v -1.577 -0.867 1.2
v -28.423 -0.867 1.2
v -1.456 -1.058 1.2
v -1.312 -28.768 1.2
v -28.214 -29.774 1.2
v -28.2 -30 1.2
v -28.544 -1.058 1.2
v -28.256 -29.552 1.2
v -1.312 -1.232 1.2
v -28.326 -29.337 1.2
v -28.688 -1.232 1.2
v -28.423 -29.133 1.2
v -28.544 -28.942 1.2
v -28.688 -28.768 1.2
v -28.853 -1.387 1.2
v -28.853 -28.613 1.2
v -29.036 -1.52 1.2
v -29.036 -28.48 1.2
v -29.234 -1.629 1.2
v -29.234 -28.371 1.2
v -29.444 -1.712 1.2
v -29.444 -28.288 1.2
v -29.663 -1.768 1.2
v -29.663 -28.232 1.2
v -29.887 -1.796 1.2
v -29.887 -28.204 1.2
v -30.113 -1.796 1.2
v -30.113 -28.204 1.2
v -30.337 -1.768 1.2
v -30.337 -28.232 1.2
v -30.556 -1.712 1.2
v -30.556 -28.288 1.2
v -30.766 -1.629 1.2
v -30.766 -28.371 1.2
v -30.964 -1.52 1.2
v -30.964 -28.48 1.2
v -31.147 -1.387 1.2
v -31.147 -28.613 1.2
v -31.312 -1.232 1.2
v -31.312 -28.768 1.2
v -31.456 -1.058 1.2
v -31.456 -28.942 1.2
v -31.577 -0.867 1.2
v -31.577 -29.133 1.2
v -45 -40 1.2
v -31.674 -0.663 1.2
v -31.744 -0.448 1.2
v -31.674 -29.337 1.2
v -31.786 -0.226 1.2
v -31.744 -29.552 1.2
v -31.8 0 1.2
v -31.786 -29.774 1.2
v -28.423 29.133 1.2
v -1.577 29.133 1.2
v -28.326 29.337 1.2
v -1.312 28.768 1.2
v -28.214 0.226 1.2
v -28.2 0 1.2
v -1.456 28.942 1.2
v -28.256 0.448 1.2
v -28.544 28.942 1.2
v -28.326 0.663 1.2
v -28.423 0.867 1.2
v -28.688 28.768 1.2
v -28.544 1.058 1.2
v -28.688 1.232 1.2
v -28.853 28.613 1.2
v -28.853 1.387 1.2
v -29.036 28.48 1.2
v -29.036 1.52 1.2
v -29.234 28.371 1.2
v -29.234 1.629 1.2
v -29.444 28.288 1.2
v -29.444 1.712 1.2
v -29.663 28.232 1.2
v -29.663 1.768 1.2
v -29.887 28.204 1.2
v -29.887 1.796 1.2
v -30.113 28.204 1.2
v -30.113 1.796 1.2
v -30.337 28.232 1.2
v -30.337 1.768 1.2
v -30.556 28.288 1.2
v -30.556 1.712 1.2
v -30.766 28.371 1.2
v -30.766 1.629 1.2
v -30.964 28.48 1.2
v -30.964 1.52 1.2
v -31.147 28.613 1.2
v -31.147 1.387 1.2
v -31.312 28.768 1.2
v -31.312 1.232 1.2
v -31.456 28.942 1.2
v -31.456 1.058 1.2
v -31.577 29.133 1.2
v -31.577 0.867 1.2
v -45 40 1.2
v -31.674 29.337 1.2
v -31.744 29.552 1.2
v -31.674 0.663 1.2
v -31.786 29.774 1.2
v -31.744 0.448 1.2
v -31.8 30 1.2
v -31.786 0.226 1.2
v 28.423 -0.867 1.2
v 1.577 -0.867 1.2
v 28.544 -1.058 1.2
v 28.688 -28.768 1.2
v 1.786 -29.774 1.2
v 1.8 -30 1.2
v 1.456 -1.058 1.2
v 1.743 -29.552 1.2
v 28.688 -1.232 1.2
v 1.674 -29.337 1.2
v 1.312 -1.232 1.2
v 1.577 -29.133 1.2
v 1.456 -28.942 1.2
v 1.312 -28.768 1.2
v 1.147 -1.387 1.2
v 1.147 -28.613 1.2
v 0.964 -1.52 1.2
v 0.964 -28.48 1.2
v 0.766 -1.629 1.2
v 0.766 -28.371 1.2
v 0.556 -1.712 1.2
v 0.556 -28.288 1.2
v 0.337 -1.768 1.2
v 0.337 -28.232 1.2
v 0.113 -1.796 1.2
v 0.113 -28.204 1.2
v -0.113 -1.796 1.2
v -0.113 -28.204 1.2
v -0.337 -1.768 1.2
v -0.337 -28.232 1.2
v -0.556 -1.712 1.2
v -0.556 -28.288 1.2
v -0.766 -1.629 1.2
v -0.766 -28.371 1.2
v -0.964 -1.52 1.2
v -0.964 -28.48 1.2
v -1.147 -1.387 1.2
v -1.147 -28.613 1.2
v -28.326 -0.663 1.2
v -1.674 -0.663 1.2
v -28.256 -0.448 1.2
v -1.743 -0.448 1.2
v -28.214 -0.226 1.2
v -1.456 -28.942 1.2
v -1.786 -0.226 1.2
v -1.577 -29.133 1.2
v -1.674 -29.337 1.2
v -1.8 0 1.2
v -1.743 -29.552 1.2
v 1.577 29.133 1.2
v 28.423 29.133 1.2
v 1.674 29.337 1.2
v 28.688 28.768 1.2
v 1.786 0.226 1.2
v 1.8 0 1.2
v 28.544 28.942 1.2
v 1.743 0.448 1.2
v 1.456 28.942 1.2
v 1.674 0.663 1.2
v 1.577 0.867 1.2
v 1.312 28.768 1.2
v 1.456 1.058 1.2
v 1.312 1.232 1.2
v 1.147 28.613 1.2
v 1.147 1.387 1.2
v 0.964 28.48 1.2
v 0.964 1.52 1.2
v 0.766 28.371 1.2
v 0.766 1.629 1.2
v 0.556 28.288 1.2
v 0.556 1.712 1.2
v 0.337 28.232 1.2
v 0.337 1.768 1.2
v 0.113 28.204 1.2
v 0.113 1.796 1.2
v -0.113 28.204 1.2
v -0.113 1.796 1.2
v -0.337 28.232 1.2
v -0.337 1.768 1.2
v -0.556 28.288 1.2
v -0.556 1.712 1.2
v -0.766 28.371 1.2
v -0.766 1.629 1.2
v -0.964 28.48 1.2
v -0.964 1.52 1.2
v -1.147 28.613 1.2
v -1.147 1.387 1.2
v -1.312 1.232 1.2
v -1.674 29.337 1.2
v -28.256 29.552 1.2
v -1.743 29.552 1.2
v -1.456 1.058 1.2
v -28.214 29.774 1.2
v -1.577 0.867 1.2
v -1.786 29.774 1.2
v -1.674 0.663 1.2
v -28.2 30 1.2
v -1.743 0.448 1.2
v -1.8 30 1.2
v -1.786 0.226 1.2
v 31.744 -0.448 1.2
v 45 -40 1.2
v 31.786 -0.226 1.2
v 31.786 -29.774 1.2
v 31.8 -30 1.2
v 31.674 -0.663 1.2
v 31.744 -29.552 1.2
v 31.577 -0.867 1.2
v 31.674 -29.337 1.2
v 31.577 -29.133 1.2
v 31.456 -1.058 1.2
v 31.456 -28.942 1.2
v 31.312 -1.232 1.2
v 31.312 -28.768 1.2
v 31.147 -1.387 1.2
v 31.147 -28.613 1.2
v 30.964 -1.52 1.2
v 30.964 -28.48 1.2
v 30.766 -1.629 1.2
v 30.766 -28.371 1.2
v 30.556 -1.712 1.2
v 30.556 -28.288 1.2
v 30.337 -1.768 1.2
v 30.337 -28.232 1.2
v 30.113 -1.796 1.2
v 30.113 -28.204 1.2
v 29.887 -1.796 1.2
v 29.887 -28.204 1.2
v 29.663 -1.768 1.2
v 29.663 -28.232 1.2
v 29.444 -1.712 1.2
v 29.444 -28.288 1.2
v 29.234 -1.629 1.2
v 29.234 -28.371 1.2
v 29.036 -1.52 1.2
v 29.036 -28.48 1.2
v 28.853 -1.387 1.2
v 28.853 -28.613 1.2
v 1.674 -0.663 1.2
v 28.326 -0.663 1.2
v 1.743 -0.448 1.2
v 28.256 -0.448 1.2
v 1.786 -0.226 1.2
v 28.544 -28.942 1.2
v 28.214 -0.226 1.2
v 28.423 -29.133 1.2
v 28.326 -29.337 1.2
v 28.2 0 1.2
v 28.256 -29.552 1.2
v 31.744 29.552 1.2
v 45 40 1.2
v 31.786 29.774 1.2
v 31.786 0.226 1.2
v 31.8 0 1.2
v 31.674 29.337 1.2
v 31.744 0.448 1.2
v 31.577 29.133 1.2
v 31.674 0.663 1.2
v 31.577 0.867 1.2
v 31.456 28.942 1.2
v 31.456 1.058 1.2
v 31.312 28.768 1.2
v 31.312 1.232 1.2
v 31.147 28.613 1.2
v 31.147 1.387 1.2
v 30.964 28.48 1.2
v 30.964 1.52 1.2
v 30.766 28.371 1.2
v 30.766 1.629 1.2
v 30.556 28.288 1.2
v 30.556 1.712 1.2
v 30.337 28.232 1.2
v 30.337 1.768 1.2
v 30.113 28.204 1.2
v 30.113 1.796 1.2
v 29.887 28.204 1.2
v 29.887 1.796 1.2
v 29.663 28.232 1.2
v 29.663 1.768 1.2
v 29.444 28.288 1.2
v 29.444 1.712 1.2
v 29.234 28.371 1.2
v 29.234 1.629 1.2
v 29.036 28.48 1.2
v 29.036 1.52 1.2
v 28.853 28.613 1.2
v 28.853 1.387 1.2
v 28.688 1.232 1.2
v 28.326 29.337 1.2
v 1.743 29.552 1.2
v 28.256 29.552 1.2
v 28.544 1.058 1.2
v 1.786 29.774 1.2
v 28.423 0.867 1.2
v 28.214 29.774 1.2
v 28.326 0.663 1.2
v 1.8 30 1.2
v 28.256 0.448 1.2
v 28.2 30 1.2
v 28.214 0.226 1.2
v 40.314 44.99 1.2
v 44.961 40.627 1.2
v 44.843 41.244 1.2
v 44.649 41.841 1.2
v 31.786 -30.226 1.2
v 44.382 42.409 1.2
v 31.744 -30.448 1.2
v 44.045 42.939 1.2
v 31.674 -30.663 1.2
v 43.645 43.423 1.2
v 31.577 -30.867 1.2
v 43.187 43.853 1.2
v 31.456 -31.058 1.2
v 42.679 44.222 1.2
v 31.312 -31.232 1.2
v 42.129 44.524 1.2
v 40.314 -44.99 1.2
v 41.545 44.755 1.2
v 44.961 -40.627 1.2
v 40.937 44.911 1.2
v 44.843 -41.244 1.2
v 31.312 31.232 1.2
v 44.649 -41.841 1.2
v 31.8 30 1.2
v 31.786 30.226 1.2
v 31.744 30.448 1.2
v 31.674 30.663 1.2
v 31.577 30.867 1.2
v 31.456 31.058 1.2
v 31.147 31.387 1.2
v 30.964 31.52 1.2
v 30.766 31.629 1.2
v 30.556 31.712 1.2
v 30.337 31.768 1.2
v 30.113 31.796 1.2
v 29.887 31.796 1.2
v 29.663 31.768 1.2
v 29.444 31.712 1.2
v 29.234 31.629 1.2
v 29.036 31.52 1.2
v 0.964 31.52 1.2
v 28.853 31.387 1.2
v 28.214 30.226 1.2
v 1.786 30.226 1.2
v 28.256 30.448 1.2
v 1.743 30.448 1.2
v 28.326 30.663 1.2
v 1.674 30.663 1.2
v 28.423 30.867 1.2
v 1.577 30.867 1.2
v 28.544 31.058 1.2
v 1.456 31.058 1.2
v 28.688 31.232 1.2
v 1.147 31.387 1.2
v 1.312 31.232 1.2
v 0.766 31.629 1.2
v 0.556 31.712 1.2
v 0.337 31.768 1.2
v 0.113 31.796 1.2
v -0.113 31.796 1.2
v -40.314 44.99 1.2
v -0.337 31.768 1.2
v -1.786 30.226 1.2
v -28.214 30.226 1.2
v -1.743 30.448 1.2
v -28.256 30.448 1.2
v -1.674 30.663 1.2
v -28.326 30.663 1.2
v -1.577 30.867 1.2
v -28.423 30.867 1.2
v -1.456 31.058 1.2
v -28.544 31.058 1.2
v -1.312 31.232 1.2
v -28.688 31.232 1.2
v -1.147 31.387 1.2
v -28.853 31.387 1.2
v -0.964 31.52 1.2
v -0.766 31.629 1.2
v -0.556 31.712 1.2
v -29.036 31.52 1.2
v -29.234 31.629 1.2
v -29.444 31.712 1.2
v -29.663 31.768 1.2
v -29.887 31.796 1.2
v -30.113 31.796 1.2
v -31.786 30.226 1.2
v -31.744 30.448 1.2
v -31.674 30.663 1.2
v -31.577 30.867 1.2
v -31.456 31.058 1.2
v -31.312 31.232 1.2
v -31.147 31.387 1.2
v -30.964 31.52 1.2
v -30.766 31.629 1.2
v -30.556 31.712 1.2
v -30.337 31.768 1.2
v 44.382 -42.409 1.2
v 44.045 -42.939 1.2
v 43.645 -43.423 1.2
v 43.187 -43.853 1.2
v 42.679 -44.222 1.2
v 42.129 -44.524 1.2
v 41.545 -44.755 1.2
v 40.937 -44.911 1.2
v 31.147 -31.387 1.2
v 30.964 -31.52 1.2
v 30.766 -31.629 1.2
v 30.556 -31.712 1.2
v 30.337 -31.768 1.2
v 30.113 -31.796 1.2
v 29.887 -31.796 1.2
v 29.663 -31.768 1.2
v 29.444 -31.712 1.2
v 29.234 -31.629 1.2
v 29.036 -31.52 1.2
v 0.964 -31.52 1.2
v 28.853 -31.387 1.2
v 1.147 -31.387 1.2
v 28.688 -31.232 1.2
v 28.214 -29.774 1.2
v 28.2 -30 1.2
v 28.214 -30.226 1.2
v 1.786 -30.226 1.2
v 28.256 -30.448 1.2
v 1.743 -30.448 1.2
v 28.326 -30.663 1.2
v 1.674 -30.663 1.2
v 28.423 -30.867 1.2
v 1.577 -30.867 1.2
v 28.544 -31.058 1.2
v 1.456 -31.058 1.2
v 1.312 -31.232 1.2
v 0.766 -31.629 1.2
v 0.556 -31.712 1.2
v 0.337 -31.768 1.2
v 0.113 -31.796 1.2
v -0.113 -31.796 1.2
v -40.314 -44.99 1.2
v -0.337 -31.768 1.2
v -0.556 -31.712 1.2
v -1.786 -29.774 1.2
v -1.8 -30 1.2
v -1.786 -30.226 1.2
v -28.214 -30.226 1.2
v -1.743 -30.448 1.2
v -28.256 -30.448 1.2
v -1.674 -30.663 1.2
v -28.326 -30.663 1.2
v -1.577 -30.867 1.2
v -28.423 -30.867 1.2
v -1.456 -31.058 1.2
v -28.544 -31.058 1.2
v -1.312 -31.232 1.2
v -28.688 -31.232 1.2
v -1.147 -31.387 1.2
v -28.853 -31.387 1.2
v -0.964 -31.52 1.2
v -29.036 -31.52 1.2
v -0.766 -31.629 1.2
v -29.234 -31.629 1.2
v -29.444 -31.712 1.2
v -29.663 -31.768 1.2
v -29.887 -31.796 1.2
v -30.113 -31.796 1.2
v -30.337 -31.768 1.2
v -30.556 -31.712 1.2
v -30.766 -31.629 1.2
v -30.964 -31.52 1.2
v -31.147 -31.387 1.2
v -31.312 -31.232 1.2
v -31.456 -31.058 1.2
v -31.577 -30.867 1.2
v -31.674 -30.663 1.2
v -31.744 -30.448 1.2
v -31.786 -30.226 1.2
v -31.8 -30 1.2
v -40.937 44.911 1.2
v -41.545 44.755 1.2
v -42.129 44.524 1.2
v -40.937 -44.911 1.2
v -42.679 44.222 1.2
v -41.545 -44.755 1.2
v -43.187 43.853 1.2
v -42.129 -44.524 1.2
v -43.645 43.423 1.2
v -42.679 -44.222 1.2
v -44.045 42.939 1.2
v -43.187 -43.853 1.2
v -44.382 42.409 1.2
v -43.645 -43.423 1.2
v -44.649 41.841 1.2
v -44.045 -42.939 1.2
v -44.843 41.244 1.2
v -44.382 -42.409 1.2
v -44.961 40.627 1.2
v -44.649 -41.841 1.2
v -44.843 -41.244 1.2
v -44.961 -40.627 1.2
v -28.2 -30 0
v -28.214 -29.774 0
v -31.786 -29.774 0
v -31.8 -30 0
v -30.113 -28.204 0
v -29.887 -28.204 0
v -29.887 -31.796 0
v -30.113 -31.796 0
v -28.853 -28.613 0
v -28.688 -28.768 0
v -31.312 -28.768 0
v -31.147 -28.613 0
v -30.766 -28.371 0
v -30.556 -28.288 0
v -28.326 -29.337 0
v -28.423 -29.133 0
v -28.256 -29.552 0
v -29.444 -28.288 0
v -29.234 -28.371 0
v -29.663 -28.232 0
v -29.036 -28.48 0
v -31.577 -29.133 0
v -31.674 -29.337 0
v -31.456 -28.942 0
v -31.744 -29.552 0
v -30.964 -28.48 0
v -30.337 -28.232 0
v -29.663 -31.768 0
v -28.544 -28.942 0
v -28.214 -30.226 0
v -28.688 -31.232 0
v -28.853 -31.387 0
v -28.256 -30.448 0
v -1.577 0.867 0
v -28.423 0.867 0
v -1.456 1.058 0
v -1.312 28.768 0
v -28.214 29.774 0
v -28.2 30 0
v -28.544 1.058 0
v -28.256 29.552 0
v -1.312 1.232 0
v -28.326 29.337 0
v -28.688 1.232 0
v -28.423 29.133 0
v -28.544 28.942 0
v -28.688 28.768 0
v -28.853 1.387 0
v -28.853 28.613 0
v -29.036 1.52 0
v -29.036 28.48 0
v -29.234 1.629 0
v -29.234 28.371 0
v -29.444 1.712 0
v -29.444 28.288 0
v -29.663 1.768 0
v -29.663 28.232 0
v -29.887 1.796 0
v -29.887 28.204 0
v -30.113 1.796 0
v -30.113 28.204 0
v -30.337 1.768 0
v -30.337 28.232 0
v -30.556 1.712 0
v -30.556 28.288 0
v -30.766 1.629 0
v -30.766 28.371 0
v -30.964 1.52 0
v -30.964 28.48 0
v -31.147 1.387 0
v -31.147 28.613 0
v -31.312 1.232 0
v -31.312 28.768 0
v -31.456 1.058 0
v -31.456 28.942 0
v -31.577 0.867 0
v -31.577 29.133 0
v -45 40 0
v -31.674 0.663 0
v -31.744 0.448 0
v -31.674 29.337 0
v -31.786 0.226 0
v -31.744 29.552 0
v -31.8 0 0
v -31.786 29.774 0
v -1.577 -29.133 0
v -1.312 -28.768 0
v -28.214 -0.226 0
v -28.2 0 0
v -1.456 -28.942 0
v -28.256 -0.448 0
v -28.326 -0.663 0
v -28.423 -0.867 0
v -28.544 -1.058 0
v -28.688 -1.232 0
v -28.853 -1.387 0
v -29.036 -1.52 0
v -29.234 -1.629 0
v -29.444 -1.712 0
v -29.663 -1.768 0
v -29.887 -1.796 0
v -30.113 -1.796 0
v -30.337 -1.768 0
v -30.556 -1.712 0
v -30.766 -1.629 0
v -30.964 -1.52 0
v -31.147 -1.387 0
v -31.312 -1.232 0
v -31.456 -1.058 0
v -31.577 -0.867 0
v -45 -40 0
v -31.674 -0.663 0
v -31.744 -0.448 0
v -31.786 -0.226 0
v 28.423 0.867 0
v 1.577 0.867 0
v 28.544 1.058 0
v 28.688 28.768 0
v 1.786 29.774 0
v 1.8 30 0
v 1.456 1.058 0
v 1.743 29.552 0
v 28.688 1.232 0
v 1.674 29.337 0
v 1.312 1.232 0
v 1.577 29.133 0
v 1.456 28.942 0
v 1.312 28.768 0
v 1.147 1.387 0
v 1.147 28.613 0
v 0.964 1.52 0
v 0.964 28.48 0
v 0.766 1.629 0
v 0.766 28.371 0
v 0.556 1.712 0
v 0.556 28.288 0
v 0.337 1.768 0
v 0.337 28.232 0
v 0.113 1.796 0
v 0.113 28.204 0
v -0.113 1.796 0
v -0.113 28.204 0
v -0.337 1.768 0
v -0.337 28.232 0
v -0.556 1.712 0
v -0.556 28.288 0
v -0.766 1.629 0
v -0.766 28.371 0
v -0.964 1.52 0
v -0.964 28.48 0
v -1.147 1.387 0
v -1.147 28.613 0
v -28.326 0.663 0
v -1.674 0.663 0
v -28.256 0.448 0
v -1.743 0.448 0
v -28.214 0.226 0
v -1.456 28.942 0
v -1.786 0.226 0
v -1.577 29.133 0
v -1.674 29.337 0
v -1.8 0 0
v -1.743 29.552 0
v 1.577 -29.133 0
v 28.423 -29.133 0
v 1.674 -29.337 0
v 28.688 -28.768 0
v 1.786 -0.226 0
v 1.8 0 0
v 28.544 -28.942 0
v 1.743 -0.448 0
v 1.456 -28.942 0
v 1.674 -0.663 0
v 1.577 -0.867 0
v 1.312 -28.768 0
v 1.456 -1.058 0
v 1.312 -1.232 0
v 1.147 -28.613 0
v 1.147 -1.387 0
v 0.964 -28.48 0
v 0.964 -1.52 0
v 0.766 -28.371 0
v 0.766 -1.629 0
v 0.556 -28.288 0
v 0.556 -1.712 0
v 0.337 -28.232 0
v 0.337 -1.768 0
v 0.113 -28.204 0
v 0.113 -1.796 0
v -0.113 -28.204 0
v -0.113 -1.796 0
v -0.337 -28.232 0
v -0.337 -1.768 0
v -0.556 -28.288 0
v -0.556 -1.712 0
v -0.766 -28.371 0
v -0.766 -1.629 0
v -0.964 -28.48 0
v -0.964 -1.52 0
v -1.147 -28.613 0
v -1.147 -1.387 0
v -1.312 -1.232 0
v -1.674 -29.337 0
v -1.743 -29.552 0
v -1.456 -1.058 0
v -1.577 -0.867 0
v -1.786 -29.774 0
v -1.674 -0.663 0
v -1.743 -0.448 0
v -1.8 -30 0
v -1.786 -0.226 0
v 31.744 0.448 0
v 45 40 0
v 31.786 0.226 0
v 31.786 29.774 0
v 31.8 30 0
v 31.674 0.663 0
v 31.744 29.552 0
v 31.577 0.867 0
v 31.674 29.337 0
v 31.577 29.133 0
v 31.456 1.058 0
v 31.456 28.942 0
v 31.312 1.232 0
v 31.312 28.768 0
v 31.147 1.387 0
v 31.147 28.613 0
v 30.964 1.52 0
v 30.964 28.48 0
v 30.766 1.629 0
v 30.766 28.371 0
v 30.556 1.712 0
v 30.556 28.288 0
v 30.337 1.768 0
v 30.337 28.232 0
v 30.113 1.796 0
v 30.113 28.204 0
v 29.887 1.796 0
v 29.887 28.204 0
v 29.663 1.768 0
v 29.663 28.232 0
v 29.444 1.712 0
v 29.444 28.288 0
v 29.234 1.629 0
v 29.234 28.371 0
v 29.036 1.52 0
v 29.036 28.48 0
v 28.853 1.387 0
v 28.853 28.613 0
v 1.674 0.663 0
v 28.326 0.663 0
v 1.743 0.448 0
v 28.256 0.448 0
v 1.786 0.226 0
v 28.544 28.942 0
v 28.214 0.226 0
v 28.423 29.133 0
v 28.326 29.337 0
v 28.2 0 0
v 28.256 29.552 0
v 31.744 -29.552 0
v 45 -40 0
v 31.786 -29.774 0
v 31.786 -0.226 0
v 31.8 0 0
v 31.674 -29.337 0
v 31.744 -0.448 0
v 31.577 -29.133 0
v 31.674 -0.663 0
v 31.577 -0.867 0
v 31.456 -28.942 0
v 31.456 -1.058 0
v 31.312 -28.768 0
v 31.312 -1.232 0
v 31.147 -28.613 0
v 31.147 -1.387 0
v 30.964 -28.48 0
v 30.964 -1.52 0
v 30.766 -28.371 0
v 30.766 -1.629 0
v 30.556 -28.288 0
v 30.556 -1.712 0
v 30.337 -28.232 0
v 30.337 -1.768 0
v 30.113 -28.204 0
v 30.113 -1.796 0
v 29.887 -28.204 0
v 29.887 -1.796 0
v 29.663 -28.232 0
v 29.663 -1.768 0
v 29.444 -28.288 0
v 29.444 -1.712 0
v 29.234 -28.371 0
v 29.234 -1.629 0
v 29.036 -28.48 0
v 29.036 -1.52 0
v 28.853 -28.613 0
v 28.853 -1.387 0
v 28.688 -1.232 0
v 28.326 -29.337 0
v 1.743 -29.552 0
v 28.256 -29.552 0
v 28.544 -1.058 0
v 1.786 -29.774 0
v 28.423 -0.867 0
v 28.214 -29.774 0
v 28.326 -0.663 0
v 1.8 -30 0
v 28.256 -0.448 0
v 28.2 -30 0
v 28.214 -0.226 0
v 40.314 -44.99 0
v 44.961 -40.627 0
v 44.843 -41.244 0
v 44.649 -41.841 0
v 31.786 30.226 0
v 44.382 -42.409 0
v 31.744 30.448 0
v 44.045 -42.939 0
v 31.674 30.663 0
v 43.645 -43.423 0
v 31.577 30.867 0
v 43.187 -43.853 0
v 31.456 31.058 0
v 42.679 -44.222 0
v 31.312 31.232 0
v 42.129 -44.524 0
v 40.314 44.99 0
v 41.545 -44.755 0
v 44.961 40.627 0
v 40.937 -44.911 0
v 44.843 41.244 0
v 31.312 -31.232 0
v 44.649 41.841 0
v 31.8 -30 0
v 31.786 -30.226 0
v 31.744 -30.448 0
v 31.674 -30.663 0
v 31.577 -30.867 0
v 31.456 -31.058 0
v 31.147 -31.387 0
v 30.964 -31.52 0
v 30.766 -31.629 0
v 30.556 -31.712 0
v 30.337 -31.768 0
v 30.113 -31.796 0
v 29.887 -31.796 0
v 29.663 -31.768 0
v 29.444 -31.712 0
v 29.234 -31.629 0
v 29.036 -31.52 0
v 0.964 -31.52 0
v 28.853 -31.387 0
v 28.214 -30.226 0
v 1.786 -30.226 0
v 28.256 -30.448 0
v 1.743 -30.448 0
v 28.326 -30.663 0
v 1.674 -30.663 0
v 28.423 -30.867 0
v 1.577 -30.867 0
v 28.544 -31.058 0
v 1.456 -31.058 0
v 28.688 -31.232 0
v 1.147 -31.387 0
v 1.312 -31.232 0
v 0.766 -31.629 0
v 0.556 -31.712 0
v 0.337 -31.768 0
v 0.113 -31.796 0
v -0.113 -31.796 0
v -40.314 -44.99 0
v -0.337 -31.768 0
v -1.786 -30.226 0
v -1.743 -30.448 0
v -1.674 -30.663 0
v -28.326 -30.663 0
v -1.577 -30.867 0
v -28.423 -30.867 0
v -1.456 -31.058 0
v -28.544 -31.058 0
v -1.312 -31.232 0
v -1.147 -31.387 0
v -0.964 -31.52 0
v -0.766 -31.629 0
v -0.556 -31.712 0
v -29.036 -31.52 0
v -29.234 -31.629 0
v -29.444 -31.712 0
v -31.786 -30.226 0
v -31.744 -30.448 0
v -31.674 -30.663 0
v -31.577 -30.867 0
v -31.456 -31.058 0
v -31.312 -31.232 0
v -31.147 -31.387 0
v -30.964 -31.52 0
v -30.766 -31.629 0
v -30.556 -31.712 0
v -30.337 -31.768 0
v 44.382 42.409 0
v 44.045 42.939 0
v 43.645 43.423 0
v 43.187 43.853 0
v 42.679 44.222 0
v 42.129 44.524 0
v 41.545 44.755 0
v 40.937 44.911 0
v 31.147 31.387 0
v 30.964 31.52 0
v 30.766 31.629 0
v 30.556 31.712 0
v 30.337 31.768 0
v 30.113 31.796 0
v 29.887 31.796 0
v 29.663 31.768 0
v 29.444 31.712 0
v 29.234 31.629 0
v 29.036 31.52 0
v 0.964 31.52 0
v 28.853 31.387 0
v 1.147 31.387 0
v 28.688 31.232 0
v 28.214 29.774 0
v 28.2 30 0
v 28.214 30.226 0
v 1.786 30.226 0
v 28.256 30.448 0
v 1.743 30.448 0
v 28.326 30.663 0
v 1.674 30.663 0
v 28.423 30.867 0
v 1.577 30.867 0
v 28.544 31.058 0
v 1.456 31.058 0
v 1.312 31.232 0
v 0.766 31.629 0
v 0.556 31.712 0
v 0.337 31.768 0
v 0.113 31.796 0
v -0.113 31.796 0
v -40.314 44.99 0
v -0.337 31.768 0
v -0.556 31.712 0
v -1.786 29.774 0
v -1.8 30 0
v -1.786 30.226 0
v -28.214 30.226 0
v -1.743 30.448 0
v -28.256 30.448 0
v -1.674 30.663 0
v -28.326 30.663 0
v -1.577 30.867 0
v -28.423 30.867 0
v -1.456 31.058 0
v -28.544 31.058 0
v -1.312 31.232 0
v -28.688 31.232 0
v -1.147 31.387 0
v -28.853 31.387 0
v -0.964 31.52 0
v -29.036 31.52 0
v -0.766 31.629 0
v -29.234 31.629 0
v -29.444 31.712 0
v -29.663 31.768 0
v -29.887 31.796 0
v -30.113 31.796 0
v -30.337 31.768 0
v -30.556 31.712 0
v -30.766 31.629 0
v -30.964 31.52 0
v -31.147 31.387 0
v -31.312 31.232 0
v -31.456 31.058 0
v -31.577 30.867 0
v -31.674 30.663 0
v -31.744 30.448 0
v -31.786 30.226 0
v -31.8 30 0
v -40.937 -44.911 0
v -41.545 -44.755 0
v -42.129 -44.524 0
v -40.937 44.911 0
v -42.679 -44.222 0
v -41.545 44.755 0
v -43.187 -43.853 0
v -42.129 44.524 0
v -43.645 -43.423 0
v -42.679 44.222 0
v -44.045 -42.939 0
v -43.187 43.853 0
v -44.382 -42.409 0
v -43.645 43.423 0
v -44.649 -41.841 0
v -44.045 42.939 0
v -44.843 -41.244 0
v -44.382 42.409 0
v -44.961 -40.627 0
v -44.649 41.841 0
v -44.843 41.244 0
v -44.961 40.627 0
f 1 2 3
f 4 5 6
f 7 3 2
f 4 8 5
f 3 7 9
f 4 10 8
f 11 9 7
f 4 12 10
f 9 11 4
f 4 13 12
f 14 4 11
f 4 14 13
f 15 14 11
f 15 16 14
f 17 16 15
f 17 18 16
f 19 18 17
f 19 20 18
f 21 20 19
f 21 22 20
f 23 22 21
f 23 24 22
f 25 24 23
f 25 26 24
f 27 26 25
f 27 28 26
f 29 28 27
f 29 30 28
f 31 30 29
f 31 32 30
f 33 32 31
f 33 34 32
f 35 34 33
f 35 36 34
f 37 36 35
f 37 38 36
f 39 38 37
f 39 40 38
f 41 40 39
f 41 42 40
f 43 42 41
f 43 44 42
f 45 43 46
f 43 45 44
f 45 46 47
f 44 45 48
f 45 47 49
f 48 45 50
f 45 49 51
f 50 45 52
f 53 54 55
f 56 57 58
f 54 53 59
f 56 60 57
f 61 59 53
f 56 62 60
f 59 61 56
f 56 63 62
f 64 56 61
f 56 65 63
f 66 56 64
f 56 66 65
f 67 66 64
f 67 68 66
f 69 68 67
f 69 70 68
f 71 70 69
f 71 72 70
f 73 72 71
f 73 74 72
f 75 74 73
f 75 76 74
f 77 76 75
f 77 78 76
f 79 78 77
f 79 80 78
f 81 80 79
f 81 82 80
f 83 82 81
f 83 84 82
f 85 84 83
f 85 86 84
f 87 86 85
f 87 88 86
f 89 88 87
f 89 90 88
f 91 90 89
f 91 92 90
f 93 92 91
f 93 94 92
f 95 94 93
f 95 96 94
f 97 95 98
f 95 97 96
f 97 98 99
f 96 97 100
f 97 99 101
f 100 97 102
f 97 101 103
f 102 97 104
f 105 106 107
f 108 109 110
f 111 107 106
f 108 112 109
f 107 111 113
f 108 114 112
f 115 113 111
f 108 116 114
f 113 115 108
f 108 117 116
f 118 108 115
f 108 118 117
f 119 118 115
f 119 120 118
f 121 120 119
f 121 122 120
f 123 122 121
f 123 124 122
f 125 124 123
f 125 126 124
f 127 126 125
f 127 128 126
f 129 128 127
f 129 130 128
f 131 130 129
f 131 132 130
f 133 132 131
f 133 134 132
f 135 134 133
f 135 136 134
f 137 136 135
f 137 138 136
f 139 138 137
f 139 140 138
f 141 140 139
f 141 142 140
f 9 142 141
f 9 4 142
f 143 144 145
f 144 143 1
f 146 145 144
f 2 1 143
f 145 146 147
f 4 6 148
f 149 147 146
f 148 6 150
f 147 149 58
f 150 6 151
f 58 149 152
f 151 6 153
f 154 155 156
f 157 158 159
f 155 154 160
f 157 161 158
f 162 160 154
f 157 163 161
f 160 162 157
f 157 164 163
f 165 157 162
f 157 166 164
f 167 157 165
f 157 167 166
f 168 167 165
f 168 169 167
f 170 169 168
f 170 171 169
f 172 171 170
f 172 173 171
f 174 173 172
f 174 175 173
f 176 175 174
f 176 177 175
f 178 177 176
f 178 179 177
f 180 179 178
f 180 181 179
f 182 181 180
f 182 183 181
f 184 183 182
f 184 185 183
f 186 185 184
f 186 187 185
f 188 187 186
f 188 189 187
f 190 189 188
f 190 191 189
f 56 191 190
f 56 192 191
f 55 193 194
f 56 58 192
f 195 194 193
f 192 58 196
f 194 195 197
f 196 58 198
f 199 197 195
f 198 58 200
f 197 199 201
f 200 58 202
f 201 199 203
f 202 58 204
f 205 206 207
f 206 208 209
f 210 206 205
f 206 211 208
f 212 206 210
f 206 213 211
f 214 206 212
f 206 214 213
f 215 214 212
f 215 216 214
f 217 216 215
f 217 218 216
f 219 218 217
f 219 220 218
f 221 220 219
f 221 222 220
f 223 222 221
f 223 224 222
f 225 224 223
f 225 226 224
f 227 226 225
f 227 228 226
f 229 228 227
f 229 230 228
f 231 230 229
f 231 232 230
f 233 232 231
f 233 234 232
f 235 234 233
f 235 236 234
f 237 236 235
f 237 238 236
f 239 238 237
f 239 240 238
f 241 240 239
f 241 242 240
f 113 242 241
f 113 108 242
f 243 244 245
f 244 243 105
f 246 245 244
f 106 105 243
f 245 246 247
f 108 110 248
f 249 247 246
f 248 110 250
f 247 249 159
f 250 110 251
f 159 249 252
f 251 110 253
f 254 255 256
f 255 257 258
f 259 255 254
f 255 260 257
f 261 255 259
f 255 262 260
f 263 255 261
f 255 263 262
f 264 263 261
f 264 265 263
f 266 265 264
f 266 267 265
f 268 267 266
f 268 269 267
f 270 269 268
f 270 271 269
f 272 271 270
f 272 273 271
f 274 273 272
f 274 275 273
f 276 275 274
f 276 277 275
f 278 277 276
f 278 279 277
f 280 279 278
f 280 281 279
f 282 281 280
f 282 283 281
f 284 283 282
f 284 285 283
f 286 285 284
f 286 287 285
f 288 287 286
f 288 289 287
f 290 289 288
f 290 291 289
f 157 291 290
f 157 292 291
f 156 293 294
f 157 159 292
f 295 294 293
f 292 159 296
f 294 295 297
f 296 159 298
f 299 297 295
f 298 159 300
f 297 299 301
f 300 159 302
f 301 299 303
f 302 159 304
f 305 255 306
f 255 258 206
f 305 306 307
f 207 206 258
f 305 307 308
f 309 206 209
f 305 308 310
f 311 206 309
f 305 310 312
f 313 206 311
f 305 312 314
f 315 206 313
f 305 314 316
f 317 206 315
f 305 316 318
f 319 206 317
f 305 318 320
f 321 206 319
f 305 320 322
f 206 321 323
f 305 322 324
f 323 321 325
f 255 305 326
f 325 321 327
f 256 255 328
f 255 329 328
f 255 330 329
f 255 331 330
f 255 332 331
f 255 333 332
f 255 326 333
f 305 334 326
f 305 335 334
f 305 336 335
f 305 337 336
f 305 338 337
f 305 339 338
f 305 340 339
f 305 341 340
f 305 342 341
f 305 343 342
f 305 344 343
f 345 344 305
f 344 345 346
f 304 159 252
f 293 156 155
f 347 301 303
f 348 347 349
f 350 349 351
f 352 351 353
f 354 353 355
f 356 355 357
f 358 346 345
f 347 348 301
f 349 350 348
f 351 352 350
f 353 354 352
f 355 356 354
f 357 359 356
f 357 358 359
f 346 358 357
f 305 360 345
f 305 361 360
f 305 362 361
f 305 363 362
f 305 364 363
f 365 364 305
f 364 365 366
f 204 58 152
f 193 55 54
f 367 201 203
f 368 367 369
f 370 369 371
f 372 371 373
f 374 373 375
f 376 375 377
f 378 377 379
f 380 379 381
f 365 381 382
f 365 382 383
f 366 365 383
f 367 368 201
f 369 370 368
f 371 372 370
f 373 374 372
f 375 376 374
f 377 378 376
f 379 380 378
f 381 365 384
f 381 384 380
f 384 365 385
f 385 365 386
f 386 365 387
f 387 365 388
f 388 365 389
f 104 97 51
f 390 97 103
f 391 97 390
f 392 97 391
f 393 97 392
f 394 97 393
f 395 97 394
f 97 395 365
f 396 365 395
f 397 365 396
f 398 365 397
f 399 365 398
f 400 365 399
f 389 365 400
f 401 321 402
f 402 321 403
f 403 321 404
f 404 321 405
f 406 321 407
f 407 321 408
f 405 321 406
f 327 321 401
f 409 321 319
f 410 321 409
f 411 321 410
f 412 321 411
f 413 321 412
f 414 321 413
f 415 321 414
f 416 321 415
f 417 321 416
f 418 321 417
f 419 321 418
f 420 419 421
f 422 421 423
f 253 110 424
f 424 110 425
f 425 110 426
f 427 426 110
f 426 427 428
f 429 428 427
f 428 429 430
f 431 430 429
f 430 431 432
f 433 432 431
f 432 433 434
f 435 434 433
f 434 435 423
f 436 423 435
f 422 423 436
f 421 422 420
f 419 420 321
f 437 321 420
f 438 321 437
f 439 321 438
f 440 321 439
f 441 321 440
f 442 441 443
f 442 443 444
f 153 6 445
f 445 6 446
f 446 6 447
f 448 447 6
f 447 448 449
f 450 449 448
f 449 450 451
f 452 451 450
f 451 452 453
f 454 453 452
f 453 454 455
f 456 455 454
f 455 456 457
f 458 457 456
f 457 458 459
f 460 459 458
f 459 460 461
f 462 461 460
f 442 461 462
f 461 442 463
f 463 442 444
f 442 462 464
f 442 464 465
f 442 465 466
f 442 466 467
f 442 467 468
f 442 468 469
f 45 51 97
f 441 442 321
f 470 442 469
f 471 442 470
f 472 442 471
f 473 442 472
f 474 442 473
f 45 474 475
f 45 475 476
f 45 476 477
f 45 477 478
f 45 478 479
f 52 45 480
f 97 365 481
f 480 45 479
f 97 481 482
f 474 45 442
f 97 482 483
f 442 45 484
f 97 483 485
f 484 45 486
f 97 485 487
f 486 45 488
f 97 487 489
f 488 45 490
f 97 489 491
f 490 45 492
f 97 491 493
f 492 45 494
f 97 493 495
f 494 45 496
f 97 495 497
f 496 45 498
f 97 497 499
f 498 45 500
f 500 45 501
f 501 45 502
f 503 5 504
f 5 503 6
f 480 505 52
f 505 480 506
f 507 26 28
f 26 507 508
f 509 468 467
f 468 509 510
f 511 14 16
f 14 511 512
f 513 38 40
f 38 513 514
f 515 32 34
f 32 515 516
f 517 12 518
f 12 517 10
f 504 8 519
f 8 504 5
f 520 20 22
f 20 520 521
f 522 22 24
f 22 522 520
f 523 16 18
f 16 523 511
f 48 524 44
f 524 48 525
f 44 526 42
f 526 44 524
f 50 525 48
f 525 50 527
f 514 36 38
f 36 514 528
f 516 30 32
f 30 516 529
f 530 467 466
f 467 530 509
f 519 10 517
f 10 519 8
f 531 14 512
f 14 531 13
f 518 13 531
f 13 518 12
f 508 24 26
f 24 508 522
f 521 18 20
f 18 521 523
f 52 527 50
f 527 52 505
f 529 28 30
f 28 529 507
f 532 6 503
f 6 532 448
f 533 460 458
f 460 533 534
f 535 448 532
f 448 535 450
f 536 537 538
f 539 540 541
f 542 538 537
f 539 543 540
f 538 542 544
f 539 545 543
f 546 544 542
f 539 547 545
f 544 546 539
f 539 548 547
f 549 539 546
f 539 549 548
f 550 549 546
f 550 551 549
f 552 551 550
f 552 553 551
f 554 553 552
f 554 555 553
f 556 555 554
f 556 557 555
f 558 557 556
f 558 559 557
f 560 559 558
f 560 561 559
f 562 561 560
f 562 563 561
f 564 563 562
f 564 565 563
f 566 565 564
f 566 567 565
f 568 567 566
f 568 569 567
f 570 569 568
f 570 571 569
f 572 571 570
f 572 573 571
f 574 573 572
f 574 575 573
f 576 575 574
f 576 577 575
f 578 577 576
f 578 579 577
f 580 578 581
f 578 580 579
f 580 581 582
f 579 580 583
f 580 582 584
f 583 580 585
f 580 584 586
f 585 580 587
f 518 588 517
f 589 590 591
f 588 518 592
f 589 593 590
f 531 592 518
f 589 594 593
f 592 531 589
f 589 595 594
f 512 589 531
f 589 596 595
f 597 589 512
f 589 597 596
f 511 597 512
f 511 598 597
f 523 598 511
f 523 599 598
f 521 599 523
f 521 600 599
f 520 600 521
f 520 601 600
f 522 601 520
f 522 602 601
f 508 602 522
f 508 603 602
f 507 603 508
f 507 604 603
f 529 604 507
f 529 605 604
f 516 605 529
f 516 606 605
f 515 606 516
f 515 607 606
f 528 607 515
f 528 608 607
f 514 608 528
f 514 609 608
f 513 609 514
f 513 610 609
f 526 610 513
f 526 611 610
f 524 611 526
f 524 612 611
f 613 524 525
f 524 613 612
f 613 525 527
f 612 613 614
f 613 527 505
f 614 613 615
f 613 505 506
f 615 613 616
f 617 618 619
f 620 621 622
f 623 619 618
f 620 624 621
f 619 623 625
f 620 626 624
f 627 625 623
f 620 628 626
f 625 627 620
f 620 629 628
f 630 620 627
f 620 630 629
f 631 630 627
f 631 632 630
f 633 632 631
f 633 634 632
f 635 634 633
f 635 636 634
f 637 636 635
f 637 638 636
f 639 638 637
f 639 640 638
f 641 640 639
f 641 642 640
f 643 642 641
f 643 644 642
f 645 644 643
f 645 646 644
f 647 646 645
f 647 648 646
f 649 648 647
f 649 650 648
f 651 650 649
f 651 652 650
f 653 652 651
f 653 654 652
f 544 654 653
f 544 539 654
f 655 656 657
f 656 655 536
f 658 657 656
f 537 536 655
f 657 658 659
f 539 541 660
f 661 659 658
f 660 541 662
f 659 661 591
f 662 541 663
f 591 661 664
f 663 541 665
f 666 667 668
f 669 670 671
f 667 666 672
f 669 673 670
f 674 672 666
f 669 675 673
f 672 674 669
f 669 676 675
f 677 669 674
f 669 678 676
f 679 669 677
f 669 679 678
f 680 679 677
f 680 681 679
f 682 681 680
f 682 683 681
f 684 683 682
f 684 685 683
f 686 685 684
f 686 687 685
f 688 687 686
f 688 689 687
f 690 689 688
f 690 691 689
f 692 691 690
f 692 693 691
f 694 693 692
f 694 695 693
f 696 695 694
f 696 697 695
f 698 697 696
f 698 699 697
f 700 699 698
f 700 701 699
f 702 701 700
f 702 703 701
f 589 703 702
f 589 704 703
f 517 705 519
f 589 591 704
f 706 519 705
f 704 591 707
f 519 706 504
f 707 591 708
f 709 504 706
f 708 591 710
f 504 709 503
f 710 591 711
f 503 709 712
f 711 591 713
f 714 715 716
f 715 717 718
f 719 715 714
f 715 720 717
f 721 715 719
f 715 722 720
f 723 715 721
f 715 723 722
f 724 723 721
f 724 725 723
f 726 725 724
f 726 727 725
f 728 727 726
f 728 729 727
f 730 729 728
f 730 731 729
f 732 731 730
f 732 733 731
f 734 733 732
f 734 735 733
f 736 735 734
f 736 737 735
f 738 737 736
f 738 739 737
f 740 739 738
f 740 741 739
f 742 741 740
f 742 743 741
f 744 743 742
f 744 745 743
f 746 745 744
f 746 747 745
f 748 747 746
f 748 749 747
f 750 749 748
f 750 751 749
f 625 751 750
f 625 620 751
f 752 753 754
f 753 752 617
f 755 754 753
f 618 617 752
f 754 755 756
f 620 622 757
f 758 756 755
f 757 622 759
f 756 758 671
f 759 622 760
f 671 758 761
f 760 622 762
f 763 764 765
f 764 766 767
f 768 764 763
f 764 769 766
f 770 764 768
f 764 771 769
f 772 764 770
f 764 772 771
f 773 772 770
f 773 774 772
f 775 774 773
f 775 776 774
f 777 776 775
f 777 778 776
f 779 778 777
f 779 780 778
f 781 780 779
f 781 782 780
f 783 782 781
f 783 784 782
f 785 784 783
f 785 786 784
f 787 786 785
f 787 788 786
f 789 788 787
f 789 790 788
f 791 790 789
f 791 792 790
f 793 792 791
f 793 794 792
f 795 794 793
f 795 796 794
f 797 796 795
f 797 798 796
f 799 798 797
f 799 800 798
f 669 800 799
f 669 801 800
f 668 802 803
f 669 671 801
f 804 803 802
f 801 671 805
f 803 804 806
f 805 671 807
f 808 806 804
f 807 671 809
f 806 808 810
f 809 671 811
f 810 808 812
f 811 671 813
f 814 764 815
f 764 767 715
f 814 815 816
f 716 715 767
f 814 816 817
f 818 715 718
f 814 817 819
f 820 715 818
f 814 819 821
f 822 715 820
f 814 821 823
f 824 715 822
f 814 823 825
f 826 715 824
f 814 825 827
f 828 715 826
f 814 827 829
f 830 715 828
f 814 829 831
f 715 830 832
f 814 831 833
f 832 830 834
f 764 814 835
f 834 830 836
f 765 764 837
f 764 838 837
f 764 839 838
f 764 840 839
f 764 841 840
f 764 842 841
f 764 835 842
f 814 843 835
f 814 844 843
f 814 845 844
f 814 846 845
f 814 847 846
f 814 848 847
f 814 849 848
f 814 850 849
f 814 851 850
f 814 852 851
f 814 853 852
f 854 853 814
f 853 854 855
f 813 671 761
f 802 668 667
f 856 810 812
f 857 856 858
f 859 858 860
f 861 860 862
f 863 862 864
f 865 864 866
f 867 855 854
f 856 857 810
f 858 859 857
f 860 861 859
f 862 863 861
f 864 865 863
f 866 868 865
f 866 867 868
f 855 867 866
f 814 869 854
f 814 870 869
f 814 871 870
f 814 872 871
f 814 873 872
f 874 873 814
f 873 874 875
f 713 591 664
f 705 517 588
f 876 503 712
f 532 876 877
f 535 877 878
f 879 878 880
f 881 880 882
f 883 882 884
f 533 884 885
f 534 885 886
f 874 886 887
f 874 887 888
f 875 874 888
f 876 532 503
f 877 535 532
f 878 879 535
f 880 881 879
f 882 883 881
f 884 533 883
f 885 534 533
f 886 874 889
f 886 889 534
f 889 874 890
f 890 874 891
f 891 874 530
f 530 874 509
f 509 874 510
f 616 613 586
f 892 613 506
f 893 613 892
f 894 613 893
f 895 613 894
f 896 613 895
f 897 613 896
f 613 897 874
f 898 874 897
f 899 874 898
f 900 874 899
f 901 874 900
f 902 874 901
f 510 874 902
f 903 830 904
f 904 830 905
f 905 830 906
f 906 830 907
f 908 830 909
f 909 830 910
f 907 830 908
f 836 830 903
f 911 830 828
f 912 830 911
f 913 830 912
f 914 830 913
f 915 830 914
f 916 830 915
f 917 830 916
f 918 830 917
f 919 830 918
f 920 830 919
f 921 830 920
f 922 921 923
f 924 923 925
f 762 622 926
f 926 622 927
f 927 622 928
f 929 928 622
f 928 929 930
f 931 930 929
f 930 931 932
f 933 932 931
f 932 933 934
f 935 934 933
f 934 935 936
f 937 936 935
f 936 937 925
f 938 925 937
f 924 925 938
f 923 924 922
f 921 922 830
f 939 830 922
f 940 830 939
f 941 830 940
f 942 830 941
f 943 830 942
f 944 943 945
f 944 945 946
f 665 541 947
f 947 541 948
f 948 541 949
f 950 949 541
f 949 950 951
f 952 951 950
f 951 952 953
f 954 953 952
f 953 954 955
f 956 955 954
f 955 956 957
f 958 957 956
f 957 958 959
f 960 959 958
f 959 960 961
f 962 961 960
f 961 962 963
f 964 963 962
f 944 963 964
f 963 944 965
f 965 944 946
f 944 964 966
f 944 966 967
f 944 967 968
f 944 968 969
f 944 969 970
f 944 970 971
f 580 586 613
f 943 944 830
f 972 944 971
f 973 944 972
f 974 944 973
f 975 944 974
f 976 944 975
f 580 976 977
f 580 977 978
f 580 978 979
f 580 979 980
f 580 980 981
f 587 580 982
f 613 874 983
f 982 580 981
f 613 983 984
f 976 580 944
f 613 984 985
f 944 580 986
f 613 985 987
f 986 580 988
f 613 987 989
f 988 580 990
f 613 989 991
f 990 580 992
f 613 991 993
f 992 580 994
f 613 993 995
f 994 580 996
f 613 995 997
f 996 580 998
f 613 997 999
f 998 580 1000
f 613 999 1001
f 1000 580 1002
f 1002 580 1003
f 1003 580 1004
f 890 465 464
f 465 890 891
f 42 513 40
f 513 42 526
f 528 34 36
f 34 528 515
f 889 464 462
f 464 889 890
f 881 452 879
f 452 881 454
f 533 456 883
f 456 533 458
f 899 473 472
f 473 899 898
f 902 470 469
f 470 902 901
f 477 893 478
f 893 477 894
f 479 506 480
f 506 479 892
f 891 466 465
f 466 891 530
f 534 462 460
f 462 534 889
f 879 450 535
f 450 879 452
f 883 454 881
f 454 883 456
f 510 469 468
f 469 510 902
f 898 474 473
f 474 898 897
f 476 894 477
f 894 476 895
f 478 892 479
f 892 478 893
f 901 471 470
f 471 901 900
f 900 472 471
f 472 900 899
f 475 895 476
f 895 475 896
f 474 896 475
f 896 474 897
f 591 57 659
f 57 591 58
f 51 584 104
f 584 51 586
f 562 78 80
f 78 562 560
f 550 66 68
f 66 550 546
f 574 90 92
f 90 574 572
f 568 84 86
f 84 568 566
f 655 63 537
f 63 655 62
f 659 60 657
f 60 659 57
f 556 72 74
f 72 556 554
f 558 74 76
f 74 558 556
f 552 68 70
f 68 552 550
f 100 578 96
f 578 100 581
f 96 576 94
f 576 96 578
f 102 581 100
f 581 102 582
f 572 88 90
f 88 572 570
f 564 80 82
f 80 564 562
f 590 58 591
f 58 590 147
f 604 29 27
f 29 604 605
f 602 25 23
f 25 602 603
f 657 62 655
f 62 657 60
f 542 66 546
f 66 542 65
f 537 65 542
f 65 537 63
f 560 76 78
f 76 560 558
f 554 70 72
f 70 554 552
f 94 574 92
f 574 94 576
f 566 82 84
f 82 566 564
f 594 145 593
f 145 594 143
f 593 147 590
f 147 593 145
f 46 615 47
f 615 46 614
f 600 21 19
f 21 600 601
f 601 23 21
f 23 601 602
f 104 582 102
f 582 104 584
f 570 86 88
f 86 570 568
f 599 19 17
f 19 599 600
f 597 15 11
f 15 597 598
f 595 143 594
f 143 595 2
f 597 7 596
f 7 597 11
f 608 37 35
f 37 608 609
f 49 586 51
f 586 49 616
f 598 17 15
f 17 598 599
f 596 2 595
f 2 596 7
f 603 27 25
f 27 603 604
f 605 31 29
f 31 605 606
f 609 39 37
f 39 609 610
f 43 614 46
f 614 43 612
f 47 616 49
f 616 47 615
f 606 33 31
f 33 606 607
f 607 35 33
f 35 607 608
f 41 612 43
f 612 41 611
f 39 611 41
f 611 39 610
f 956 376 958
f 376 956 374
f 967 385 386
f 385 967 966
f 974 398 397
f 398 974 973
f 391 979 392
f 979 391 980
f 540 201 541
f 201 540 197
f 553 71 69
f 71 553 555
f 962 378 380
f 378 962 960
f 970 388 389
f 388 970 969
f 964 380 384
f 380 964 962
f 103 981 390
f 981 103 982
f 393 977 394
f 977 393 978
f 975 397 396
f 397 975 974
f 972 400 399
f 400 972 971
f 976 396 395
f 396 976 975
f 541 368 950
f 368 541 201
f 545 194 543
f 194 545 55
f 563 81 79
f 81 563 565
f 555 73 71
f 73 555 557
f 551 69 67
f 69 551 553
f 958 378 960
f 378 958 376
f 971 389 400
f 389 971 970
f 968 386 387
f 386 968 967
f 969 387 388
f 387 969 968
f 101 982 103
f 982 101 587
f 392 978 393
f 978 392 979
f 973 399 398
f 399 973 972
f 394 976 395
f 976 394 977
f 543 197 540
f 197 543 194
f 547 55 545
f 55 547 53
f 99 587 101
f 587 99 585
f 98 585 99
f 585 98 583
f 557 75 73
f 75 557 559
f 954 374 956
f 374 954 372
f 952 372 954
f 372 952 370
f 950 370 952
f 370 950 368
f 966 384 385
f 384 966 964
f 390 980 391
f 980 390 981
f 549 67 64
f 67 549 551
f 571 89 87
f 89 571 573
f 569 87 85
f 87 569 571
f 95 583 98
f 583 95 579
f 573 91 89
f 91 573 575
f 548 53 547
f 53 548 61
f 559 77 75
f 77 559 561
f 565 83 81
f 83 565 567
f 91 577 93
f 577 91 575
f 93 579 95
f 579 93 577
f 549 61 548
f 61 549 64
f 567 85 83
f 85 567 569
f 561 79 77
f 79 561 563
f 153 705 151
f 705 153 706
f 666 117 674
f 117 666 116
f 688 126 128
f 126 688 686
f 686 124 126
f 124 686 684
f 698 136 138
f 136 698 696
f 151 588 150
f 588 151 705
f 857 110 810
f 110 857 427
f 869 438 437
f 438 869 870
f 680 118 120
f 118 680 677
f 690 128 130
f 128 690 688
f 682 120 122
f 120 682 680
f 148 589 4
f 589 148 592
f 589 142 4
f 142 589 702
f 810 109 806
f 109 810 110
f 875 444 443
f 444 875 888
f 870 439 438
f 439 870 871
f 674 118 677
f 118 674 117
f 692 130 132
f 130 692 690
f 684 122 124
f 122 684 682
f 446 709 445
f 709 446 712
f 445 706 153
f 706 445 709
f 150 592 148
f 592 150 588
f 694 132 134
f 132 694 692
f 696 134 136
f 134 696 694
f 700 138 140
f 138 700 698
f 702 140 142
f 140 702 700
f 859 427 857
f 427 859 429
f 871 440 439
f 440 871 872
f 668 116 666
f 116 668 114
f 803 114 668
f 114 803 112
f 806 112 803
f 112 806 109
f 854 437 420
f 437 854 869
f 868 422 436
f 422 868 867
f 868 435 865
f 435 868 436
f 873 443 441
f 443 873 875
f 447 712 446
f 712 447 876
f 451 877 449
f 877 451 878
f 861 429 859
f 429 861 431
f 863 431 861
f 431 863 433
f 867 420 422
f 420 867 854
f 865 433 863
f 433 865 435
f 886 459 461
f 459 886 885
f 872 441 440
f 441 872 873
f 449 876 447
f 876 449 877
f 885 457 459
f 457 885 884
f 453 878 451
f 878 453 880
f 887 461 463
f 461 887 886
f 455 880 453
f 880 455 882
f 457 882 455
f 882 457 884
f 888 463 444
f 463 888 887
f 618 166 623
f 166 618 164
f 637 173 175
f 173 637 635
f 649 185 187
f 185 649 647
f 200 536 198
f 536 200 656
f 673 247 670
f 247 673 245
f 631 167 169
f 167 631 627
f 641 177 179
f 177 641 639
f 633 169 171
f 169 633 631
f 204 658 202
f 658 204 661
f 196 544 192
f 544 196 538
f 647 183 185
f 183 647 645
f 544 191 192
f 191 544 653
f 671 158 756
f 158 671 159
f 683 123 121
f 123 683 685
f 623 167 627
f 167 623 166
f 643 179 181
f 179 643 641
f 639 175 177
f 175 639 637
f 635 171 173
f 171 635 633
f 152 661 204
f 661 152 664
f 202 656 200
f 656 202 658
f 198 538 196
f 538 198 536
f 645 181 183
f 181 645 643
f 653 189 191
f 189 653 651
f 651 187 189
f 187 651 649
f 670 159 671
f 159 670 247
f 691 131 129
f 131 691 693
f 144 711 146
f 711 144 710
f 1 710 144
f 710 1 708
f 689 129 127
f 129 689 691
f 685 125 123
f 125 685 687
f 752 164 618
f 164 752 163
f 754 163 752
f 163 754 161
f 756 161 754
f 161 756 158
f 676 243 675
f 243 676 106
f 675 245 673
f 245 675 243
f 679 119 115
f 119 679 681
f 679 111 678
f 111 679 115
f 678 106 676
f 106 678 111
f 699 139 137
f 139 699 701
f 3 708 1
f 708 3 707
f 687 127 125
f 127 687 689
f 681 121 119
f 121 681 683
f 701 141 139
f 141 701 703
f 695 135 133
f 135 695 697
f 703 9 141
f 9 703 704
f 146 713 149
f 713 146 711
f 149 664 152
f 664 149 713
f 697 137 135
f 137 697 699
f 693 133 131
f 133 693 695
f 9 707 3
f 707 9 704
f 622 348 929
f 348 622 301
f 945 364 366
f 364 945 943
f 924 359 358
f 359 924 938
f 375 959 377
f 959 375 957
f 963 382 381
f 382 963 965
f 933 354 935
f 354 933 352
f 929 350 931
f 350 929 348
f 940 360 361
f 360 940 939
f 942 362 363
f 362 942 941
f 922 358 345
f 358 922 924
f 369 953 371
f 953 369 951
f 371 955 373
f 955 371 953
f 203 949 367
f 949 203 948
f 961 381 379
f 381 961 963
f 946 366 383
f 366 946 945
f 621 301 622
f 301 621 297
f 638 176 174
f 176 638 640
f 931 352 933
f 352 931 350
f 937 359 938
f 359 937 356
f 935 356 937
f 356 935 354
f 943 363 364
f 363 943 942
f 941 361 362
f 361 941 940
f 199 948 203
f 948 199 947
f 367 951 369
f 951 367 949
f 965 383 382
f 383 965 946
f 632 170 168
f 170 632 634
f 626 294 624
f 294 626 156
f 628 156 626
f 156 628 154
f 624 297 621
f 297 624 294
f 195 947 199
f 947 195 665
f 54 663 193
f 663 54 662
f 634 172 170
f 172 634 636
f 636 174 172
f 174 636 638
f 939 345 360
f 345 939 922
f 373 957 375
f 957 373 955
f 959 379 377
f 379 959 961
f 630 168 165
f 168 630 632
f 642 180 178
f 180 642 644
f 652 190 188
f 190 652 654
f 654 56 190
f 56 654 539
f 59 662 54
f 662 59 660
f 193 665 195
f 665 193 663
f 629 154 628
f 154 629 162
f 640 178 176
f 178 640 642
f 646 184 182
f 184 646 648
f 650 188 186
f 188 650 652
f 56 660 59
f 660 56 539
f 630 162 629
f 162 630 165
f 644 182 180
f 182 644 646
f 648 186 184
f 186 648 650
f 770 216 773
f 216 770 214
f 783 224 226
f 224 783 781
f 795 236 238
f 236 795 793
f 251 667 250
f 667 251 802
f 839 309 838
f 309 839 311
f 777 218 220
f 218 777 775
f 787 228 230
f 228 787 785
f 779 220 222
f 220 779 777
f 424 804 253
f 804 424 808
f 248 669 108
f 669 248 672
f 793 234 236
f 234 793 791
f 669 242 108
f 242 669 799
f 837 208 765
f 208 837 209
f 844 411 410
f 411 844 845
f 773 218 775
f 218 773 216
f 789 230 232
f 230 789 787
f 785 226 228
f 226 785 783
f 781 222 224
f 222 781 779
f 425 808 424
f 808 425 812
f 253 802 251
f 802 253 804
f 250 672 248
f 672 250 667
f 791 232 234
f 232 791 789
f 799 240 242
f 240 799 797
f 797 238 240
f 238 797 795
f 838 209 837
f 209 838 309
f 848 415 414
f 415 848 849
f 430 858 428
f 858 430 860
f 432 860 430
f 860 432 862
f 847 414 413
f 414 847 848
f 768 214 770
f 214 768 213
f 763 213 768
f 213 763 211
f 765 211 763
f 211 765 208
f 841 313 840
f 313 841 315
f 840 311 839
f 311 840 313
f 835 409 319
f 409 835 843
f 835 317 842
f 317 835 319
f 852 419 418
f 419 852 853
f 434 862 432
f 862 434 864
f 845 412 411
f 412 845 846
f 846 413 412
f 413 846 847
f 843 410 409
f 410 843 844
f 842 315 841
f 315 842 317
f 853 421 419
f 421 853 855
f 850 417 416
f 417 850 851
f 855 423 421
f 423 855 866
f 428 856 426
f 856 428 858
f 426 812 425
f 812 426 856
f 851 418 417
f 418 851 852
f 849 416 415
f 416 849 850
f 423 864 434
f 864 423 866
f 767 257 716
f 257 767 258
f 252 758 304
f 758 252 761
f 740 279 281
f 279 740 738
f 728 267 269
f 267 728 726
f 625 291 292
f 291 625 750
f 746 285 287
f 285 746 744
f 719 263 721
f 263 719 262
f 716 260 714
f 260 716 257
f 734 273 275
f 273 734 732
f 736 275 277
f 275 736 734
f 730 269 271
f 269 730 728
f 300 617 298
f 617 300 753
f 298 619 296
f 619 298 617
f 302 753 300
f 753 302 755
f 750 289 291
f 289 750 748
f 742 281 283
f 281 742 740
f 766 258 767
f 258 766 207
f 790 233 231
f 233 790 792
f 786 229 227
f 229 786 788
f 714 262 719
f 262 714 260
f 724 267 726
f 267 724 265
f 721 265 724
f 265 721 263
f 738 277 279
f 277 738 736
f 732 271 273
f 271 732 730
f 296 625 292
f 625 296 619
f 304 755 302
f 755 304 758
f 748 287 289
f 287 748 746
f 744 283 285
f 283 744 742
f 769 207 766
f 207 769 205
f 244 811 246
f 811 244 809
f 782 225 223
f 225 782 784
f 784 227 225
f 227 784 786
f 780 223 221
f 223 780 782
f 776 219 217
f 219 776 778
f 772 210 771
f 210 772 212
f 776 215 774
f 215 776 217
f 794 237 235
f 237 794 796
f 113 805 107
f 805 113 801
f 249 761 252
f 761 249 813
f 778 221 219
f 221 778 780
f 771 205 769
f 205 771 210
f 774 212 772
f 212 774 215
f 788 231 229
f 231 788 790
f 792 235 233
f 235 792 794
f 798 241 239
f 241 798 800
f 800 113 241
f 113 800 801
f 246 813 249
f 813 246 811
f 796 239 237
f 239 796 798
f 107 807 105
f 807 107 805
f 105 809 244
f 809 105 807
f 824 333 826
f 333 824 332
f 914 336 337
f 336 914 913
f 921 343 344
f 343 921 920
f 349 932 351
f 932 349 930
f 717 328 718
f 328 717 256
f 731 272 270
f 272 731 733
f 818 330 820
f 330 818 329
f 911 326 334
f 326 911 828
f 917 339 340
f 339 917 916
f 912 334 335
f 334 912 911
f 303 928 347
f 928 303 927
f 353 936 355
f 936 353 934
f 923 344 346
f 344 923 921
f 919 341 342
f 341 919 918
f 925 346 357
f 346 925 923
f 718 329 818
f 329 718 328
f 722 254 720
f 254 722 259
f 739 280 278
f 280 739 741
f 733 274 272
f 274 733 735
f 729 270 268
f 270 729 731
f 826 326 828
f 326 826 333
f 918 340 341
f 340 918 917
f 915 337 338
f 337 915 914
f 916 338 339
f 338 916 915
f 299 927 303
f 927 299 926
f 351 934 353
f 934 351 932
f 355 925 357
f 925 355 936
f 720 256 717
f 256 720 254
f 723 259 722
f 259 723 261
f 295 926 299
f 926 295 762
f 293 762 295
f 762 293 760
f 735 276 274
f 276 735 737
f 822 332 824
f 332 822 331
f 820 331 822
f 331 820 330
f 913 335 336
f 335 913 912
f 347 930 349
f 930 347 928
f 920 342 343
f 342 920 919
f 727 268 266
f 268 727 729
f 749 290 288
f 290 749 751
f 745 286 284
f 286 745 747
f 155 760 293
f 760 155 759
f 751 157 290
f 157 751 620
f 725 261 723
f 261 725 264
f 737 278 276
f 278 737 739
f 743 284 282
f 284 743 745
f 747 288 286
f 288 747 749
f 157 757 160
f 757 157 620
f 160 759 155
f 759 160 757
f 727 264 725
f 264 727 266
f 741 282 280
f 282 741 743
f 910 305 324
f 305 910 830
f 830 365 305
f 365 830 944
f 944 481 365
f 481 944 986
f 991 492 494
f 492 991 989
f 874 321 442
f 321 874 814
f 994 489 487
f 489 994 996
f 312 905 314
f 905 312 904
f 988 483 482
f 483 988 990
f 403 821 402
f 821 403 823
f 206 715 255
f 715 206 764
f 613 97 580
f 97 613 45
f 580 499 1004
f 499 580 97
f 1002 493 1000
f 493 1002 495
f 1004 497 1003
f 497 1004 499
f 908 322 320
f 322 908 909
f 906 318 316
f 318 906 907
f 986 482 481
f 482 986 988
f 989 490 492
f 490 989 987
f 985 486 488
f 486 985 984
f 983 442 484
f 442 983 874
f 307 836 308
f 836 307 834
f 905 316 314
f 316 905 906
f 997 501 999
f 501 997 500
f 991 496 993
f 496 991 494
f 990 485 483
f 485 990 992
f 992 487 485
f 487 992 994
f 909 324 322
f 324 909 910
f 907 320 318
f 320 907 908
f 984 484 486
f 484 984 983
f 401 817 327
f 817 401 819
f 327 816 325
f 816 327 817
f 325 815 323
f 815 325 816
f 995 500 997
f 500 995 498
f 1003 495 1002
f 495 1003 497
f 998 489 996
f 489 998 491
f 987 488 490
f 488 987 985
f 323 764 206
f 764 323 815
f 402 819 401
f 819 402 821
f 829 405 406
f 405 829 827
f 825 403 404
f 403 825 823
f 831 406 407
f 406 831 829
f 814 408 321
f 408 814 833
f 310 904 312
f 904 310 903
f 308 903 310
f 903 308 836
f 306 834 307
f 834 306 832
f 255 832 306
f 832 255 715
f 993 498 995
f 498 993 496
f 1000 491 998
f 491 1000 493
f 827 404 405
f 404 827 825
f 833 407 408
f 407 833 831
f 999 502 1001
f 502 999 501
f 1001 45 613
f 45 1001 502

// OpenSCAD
$fn = 50;


difference() {
	union() {
		hull() {
			translate(v = [-40.0000000000, 40.0000000000, 0]) {
				cylinder(h = 90, r = 5);
			}
			translate(v = [40.0000000000, 40.0000000000, 0]) {
				cylinder(h = 90, r = 5);
			}
			translate(v = [-40.0000000000, -40.0000000000, 0]) {
				cylinder(h = 90, r = 5);
			}
			translate(v = [40.0000000000, -40.0000000000, 0]) {
				cylinder(h = 90, r = 5);
			}
		}
	}
	union() {
		translate(v = [0, 0, 1.2000000000]) {
			hull() {
				translate(v = [-40.0000000000, 40.0000000000, 0]) {
					cylinder(h = 88.8000000000, r = 3.8000000000);
				}
				translate(v = [40.0000000000, 40.0000000000, 0]) {
					cylinder(h = 88.8000000000, r = 3.8000000000);
				}
				translate(v = [-40.0000000000, -40.0000000000, 0]) {
					cylinder(h = 88.8000000000, r = 3.8000000000);
				}
				translate(v = [40.0000000000, -40.0000000000, 0]) {
					cylinder(h = 88.8000000000, r = 3.8000000000);
				}
			}
		}
		#translate(v = [-30.0000000000, -30.0000000000, 0]) {
			cylinder(h = 1.2000000000, r = 1.8000000000);
		}
		#translate(v = [-30.0000000000, 0.0000000000, 0]) {
			cylinder(h = 1.2000000000, r = 1.8000000000);
		}
		#translate(v = [-30.0000000000, 30.0000000000, 0]) {
			cylinder(h = 1.2000000000, r = 1.8000000000);
		}
		#translate(v = [0.0000000000, -30.0000000000, 0]) {
			cylinder(h = 1.2000000000, r = 1.8000000000);
		}
		#cylinder(h = 1.2000000000, r = 1.8000000000);
		#translate(v = [0.0000000000, 30.0000000000, 0]) {
			cylinder(h = 1.2000000000, r = 1.8000000000);
		}
		#translate(v = [30.0000000000, -30.0000000000, 0]) {
			cylinder(h = 1.2000000000, r = 1.8000000000);
		}
		#translate(v = [30.0000000000, 0.0000000000, 0]) {
			cylinder(h = 1.2000000000, r = 1.8000000000);
		}
		#translate(v = [30.0000000000, 30.0000000000, 0]) {
			cylinder(h = 1.2000000000, r = 1.8000000000);
		}
		translate(v = [-250.0000000000, -250.0000000000, 1.2000000000]) {
			cube(size = [500, 500, 500]);
		}
		translate(v = [-250.0000000000, -250.0000000000, 1.2000000000]) {
			cube(size = [500, 500, 500]);
		}
		translate(v = [-250.0000000000, -250.0000000000, 1.2000000000]) {
			cube(size = [500, 500, 500]);
		}
	}
}
